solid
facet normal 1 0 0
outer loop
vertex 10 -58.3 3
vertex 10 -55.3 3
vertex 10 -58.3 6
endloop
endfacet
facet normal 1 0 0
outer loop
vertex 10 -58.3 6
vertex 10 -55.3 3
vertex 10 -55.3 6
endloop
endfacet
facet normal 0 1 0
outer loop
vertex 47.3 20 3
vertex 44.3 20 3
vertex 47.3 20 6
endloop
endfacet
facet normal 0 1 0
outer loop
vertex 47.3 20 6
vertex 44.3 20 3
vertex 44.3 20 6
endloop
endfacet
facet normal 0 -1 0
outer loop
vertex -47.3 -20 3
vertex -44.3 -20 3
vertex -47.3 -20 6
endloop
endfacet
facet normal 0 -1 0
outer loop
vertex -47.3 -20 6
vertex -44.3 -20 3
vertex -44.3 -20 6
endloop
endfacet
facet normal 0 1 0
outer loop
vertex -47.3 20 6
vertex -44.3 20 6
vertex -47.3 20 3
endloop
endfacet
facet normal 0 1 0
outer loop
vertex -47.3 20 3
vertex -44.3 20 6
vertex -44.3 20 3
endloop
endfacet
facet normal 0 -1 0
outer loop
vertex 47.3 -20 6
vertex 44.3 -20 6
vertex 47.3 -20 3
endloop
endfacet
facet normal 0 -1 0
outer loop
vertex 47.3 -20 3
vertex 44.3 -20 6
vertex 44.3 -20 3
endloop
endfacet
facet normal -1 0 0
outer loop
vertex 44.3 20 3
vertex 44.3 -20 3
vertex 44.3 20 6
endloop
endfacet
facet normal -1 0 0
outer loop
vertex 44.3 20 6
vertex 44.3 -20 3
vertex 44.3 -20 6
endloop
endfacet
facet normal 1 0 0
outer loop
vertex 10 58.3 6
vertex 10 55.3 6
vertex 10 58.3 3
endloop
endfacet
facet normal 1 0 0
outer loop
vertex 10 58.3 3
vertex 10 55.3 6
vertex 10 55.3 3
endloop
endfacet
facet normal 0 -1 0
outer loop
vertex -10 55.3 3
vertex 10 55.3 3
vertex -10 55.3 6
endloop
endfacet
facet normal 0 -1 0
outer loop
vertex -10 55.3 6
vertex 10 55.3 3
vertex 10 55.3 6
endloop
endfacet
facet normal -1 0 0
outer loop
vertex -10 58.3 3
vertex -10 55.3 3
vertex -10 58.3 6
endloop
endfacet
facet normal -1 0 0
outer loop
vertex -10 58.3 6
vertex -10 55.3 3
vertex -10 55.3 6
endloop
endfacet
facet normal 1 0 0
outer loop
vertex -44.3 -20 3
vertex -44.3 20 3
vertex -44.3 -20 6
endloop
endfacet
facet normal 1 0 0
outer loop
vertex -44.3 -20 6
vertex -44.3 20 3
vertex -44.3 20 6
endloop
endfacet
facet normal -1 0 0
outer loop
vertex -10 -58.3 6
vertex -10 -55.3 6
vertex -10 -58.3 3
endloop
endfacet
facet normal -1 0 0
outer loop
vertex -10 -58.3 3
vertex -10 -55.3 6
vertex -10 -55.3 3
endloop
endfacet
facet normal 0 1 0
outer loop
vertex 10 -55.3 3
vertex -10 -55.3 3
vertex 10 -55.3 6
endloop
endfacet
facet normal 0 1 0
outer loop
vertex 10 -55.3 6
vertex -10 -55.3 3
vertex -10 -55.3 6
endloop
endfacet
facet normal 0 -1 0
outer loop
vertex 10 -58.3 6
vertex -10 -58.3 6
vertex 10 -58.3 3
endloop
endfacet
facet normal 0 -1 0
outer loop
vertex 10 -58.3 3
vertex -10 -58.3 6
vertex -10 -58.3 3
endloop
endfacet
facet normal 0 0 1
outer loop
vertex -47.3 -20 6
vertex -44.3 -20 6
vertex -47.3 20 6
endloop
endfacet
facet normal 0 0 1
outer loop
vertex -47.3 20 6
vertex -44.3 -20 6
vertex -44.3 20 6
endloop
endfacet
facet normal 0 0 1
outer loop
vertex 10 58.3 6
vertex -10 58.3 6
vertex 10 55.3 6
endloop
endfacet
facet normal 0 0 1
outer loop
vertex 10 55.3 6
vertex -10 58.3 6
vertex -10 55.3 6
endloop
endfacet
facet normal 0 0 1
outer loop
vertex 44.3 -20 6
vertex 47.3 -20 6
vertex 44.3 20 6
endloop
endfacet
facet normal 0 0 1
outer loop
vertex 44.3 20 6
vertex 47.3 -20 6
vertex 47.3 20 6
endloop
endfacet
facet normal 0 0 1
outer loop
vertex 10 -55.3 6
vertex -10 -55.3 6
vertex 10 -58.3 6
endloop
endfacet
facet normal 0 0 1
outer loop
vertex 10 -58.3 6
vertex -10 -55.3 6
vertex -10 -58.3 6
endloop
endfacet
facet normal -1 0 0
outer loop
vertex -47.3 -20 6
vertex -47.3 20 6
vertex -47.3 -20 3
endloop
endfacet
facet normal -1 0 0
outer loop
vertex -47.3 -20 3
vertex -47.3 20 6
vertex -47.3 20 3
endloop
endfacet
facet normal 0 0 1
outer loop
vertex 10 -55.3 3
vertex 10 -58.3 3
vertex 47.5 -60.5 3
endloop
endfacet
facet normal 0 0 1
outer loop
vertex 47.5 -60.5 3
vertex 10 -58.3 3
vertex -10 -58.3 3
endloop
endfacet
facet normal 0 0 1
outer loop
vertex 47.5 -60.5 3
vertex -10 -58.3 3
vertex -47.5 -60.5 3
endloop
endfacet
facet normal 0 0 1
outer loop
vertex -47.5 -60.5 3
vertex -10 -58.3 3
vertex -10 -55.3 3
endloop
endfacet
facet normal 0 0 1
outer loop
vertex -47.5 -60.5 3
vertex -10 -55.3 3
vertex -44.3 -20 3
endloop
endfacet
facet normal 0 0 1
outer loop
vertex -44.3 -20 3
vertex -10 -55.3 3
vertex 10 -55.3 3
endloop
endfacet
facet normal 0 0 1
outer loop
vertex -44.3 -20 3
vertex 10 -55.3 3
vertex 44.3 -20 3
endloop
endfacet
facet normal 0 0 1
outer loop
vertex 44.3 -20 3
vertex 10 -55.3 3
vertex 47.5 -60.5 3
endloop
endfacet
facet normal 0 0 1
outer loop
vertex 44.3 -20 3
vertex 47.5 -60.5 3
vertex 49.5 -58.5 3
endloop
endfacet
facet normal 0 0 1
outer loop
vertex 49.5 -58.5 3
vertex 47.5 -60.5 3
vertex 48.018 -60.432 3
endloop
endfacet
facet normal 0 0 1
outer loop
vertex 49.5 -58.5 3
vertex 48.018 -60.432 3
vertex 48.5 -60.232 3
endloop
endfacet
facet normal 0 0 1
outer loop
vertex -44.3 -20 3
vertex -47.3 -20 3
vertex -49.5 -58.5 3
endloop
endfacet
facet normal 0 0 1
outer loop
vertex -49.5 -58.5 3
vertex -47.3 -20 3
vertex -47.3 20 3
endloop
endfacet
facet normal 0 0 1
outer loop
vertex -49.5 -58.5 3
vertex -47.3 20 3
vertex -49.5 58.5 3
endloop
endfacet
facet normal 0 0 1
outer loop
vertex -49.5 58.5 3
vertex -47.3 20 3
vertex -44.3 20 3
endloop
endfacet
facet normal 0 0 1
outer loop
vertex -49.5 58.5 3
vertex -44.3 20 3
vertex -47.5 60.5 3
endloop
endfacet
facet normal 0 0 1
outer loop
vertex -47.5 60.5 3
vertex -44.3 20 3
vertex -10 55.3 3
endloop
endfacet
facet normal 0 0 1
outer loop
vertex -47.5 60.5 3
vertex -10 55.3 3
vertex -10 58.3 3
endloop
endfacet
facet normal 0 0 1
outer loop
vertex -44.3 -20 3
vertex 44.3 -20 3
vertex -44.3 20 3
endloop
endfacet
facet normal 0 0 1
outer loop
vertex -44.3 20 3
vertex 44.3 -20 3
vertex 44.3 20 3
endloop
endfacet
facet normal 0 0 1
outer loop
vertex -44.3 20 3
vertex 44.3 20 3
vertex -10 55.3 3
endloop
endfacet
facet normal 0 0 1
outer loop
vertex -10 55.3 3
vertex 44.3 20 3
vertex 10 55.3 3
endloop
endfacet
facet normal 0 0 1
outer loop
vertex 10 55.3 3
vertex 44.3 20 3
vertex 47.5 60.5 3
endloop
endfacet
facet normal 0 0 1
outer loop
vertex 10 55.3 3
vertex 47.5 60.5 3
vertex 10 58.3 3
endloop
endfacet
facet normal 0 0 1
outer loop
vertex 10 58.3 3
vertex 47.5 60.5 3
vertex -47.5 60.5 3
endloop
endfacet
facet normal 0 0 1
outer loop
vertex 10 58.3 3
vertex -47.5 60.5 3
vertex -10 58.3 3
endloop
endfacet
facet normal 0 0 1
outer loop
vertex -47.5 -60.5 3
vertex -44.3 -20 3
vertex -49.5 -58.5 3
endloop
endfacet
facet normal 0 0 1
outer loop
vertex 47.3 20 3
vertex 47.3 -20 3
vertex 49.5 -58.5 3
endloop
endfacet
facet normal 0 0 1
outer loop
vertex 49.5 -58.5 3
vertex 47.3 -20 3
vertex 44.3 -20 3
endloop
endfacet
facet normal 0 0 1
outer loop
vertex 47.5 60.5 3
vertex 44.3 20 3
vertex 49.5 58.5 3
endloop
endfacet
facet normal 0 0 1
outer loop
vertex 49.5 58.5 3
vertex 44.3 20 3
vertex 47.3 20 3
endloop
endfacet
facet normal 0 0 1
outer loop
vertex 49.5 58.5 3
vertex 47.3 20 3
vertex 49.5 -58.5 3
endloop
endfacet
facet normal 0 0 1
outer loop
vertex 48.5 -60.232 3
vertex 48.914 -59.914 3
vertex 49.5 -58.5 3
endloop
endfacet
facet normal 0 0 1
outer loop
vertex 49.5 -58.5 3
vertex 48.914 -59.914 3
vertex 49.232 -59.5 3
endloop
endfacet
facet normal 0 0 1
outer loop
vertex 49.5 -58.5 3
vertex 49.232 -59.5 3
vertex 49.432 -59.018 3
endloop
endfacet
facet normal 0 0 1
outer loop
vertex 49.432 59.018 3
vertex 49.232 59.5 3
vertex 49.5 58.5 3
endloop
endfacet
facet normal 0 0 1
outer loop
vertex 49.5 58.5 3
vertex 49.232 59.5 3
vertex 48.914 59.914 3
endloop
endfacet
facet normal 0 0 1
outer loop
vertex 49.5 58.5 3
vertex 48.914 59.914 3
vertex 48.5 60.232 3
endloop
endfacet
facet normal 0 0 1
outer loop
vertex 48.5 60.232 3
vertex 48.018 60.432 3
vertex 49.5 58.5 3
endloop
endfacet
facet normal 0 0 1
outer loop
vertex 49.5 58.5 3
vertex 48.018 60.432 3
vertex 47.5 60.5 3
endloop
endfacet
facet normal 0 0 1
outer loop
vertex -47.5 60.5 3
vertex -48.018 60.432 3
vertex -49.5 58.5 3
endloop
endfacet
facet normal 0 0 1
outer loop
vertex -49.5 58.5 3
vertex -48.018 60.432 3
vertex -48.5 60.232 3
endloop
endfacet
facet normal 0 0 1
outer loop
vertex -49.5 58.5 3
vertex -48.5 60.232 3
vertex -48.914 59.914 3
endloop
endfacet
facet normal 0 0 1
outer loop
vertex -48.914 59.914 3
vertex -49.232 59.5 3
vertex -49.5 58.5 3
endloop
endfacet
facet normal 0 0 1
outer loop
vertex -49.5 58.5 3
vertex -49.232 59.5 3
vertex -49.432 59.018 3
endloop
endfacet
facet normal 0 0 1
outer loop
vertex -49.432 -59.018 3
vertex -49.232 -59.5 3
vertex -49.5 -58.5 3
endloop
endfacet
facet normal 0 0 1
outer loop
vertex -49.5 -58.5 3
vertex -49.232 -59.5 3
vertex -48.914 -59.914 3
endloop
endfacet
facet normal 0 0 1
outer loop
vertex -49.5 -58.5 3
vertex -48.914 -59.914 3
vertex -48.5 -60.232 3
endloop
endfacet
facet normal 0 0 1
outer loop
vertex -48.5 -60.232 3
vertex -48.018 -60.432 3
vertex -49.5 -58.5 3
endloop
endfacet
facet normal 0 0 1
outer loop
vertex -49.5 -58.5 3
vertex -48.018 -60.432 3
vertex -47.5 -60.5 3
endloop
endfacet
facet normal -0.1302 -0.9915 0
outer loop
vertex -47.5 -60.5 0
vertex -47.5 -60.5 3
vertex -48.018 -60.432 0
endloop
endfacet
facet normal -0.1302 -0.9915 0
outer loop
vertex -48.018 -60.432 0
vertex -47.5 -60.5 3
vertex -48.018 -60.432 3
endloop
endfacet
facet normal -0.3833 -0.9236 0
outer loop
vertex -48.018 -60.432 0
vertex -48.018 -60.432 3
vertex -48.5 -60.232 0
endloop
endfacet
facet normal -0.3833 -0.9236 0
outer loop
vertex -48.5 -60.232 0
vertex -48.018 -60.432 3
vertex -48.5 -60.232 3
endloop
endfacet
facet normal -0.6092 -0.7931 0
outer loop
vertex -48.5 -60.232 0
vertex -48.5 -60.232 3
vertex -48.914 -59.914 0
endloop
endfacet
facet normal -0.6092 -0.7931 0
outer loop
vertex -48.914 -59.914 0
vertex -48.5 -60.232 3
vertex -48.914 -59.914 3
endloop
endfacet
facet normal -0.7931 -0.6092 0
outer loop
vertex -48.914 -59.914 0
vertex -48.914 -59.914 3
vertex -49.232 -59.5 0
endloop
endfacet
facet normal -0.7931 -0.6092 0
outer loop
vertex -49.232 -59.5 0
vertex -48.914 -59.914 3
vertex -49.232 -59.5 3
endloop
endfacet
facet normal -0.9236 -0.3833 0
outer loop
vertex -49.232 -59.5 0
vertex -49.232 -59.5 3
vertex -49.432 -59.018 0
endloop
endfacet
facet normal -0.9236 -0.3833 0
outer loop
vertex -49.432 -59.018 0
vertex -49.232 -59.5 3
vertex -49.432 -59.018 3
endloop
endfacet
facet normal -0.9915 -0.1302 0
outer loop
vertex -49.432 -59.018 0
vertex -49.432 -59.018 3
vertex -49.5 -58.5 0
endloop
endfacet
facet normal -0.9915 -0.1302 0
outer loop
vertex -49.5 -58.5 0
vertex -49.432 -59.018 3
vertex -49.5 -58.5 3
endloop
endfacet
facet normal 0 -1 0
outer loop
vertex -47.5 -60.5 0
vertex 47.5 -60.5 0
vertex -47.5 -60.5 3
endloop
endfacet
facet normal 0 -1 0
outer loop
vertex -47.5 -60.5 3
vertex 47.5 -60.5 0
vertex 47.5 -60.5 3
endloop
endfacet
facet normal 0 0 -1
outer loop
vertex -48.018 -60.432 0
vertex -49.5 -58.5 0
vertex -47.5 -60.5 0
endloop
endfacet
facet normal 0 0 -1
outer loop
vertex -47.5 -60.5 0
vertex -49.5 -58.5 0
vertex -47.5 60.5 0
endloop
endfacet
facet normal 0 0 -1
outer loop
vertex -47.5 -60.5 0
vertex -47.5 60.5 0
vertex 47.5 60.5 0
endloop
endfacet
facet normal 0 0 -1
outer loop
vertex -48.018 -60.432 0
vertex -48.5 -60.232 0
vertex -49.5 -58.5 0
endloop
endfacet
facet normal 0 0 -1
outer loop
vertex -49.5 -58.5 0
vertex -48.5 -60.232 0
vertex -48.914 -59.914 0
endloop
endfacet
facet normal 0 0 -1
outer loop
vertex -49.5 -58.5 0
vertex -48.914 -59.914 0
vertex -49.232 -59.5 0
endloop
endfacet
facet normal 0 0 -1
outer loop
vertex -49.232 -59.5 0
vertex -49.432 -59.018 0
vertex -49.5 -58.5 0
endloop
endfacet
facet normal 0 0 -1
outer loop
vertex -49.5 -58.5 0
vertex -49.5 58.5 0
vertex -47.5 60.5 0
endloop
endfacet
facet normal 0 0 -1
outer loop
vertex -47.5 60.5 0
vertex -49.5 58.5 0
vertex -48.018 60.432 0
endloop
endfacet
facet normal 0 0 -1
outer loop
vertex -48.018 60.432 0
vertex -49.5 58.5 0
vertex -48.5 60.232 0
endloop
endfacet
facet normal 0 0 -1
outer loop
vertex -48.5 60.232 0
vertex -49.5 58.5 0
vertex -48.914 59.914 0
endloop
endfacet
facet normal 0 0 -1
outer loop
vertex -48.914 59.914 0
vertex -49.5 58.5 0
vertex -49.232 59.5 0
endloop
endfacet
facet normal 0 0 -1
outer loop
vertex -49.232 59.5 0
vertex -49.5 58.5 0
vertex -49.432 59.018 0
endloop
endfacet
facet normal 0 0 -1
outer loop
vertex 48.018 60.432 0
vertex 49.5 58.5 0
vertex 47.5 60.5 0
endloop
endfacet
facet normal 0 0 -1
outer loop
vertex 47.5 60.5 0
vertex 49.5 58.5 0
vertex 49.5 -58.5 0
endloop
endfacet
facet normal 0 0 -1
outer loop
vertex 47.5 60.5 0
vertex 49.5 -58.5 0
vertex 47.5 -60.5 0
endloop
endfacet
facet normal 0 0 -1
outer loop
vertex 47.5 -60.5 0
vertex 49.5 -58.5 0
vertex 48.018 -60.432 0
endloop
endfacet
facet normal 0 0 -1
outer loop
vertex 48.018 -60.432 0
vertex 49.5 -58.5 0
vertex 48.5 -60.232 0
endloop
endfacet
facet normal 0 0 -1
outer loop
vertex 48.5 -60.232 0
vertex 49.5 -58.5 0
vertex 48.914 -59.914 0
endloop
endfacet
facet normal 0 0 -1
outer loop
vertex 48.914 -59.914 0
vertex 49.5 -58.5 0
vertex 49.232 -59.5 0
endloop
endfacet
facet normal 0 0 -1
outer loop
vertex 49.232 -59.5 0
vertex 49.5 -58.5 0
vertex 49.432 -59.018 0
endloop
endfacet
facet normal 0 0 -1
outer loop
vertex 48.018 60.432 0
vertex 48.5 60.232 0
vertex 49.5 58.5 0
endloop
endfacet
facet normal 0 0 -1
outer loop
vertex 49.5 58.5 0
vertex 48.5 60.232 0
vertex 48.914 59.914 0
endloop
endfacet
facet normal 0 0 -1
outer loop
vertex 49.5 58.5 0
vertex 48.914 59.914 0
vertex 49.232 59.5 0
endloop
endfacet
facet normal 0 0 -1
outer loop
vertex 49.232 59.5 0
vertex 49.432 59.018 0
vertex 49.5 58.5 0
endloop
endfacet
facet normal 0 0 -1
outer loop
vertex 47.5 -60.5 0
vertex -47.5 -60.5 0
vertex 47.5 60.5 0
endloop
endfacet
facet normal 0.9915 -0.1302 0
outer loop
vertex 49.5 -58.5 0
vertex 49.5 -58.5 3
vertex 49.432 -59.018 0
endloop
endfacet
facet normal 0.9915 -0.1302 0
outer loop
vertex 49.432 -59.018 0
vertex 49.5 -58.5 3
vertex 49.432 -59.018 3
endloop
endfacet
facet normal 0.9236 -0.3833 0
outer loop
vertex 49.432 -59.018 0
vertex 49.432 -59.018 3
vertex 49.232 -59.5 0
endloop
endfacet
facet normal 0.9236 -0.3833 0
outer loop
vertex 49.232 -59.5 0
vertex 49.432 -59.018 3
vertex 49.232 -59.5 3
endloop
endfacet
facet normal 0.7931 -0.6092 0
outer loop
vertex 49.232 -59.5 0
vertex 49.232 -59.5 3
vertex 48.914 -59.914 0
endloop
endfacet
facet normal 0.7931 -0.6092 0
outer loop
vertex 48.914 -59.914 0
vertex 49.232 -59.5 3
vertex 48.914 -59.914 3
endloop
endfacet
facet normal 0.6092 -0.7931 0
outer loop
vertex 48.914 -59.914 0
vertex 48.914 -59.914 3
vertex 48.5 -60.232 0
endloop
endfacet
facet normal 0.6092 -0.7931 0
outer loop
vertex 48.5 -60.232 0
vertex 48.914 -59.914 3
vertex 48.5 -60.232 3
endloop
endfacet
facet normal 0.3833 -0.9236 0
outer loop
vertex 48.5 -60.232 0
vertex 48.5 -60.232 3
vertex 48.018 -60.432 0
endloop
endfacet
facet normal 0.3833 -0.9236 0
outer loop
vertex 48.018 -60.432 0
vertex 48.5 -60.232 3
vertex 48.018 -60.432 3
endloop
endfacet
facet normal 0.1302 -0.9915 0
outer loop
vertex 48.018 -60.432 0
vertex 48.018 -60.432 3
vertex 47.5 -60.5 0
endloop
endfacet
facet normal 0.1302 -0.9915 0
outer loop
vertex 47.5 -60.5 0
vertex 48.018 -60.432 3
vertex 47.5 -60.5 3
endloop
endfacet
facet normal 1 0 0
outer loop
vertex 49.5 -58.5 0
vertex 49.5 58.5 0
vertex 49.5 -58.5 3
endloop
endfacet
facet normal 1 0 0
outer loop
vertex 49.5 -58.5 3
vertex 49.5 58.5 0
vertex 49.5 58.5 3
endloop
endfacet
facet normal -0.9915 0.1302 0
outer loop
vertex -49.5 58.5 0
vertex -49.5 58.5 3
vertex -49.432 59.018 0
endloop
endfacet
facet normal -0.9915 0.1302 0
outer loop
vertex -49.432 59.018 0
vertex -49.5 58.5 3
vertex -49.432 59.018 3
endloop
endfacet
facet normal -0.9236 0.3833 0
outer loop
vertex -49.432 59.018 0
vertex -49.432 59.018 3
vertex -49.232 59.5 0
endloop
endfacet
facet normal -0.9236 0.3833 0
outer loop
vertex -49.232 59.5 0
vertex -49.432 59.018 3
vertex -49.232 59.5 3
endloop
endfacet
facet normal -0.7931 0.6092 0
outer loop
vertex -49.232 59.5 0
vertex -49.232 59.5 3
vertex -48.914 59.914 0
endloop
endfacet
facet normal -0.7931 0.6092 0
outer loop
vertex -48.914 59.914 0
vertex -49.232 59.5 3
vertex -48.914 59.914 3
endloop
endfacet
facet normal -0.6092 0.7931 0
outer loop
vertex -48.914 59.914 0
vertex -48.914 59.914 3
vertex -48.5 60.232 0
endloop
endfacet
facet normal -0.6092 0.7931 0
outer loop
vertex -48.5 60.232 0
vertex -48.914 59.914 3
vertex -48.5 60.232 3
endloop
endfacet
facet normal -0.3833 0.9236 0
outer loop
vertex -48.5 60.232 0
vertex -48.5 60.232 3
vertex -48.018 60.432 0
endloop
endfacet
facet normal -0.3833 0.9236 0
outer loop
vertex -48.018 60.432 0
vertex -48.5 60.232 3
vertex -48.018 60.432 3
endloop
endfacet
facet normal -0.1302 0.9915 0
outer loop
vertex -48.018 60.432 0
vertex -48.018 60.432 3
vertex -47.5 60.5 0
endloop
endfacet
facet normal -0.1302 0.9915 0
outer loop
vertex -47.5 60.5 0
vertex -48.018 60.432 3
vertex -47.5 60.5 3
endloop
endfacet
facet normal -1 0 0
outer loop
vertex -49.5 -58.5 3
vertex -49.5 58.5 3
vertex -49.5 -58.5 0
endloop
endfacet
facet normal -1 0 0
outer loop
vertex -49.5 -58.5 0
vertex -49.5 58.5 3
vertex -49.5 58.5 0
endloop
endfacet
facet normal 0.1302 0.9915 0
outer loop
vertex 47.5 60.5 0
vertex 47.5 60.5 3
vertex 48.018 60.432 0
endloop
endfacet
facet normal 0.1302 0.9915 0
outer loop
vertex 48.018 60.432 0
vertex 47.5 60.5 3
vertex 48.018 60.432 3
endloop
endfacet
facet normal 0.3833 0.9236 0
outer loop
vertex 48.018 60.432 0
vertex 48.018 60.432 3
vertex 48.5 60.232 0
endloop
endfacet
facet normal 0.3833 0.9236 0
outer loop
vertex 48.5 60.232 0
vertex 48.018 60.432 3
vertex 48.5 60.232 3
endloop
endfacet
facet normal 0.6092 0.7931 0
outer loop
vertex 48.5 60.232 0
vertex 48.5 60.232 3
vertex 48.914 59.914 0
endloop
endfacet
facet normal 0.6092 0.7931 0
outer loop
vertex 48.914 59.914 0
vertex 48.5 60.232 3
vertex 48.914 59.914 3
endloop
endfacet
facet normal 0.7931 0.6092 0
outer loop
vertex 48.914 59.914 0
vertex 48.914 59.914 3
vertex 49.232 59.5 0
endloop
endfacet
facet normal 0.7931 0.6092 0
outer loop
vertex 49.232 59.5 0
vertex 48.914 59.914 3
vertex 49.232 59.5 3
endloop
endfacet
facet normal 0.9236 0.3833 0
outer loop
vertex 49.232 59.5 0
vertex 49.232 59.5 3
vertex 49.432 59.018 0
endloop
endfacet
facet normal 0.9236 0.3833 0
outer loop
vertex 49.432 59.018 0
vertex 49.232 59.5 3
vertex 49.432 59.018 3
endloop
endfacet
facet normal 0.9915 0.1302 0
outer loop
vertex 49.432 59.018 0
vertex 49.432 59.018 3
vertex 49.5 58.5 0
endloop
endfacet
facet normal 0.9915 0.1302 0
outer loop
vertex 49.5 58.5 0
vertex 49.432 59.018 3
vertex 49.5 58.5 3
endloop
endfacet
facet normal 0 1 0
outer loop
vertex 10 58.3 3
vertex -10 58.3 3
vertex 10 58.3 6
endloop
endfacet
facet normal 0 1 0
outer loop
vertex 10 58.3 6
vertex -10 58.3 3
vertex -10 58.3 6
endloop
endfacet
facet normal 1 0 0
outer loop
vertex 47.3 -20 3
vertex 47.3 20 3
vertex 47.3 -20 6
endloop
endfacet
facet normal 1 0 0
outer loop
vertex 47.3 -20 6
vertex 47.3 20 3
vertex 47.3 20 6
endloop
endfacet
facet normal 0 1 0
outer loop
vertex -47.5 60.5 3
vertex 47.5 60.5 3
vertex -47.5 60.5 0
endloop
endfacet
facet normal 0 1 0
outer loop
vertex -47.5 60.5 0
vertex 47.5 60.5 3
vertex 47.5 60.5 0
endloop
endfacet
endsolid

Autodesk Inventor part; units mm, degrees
ref_plane "YZ Plane" through (0, 0, 0) normal (1, 0, 0) x (0, 1, 0)
ref_plane "XZ Plane" through (0, 0, 0) normal (0, 1, 0) x (-1, 0, 0)
ref_plane "XY Plane" through (0, 0, 0) normal (0, 0, 1) x (1, 0, 0)
sketch "Sketch1" plane through (0, 0, 0) normal (0, 0, 1) x (1, 0, 0)
  line L0 (-49.5, 60.5) -> (49.5, 60.5)
  line L1 (49.5, 60.5) -> (49.5, -60.5)
  line L2 (49.5, -60.5) -> (-49.5, -60.5)
  line L3 (-49.5, -60.5) -> (-49.5, 60.5)
  line L4 (-49.5, 60.5) -> (49.5, -60.5) construction
  line L5 (49.5, 60.5) -> (-49.5, -60.5) construction
  point P0 (0, 0)
  dimension "d0" = 99
  dimension "d1" = 121
extrude "Extrusion1" add sketch "Sketch1" along normal blind 3
sketch "Sketch2" plane through (0, 0, 3) normal (0, 0, 1) x (1, 0, 0)
  line L0 (-47.3, 58.3) -> (47.3, 58.3)
  line L1 (47.3, 58.3) -> (47.3, -58.3)
  line L2 (47.3, -58.3) -> (-47.3, -58.3)
  line L3 (-47.3, -58.3) -> (-47.3, 58.3)
  line L4 (-47.3, 58.3) -> (47.3, -58.3) construction
  line L5 (47.3, 58.3) -> (-47.3, -58.3) construction
  point P0 (0, 0)
  dimension "d4" = 116.6
  dimension "d5" = 94.6
extrude "Extrusion2" add sketch "Sketch2" along normal blind 3
fillet "Fillet1" radius 2 4 edges at (49.5, 60.5, 1.5) (-49.5, 60.5, 1.5) (49.5, -60.5, 1.5) (-49.5, -60.5, 1.5)
sketch "Sketch5" plane through (0, 0, 6) normal (0, 0, 1) x (1, 0, 0)
  line L0 (44.3, -55.3) -> (-44.3, -55.3)
  line L1 (-44.3, -55.3) -> (-44.3, 55.3)
  line L2 (-44.3, 55.3) -> (44.3, 55.3)
  line L3 (44.3, 55.3) -> (44.3, -55.3)
  line L4 (44.3, -55.3) -> (-44.3, 55.3) construction
  line L5 (-44.3, -55.3) -> (44.3, 55.3) construction
  line L6 (47.3, 58.3) -> (-47.3, 58.3) projected
  line L7 (47.3, -58.3) -> (47.3, 58.3) projected
  line L8 (-78.6, 90.6) -> (-10, 90.6)
  line L9 (-10, 90.6) -> (-10, 20)
  line L10 (-10, 20) -> (-78.6, 20)
  line L11 (-78.6, 20) -> (-78.6, 90.6)
  line L12 (-78.6, 90.6) -> (-10, 20) construction
  line L13 (-10, 90.6) -> (-78.6, 20) construction
  line L14 (78.6, 90.6) -> (10, 90.6)
  line L15 (10, 90.6) -> (10, 20)
  line L16 (10, 20) -> (78.6, 20)
  line L17 (78.6, 20) -> (78.6, 90.6)
  line L18 (78.6, 90.6) -> (10, 20) construction
  line L19 (10, 90.6) -> (78.6, 20) construction
  line L20 (10, -20) -> (78.6, -20)
  line L21 (78.6, -20) -> (78.6, -90.6)
  line L22 (78.6, -90.6) -> (10, -90.6)
  line L23 (10, -90.6) -> (10, -20)
  line L24 (10, -20) -> (78.6, -90.6) construction
  line L25 (78.6, -20) -> (10, -90.6) construction
  line L26 (-78.6, -90.6) -> (-10, -90.6)
  line L27 (-10, -90.6) -> (-10, -20)
  line L28 (-10, -20) -> (-78.6, -20)
  line L29 (-78.6, -20) -> (-78.6, -90.6)
  line L30 (-78.6, -90.6) -> (-10, -20) construction
  line L31 (-10, -90.6) -> (-78.6, -20) construction
  point P0 (0, 0)
  point P1 (-10, -55.3)
  point P2 (-44.3, -20)
  point P3 (44.3, -20)
  point P4 (10, -55.3)
  point P5 (-44.3, 20)
  point P6 (-10, 55.3)
  point P7 (10, 55.3)
  point P8 (44.3, 20)
  dimension "d23" = 3
  dimension "d24" = 3
  dimension "d27" = 20
  dimension "d28" = 40
extrude "Extrusion5" cut sketch "Sketch5" against normal up to surface (3 mm away) contours L3 L20 L21 L22 L23 L0 | L0 L23 L20 L3 | L0 L27 L28 L1 L10 L9 L2 L15 L16 L3 L20 L23 | L27 L26 L29 L28 L1 L0 | L0 L1 L28 L27 | L16 L15 L2 L3 | L3 L2 L15 L6 L7 L16 | L7 L6 L15 L14 L17 L16 | L10 L11 L8 L9 L2 L1 | L1 L2 L9 L10
equation "\"BendRadius\" = Thickness"
equation "\"BendReliefWidth\" = Thickness"
equation "\"BendReliefDepth\" = 0.5 * Thickness"
equation "\"CornerReliefSize\" = 4 * Thickness"
equation "\"MinimumRemnant\" = 2 * Thickness"
equation "\"TransitionRadius\" = BendRadius"
equation "\"JacobiRadiusSize\" = BendRadius"
equation "\"GapSize\" = Thickness"
equation "\"Thickness\" = 3.048"
properties part number "_3DPrint"
